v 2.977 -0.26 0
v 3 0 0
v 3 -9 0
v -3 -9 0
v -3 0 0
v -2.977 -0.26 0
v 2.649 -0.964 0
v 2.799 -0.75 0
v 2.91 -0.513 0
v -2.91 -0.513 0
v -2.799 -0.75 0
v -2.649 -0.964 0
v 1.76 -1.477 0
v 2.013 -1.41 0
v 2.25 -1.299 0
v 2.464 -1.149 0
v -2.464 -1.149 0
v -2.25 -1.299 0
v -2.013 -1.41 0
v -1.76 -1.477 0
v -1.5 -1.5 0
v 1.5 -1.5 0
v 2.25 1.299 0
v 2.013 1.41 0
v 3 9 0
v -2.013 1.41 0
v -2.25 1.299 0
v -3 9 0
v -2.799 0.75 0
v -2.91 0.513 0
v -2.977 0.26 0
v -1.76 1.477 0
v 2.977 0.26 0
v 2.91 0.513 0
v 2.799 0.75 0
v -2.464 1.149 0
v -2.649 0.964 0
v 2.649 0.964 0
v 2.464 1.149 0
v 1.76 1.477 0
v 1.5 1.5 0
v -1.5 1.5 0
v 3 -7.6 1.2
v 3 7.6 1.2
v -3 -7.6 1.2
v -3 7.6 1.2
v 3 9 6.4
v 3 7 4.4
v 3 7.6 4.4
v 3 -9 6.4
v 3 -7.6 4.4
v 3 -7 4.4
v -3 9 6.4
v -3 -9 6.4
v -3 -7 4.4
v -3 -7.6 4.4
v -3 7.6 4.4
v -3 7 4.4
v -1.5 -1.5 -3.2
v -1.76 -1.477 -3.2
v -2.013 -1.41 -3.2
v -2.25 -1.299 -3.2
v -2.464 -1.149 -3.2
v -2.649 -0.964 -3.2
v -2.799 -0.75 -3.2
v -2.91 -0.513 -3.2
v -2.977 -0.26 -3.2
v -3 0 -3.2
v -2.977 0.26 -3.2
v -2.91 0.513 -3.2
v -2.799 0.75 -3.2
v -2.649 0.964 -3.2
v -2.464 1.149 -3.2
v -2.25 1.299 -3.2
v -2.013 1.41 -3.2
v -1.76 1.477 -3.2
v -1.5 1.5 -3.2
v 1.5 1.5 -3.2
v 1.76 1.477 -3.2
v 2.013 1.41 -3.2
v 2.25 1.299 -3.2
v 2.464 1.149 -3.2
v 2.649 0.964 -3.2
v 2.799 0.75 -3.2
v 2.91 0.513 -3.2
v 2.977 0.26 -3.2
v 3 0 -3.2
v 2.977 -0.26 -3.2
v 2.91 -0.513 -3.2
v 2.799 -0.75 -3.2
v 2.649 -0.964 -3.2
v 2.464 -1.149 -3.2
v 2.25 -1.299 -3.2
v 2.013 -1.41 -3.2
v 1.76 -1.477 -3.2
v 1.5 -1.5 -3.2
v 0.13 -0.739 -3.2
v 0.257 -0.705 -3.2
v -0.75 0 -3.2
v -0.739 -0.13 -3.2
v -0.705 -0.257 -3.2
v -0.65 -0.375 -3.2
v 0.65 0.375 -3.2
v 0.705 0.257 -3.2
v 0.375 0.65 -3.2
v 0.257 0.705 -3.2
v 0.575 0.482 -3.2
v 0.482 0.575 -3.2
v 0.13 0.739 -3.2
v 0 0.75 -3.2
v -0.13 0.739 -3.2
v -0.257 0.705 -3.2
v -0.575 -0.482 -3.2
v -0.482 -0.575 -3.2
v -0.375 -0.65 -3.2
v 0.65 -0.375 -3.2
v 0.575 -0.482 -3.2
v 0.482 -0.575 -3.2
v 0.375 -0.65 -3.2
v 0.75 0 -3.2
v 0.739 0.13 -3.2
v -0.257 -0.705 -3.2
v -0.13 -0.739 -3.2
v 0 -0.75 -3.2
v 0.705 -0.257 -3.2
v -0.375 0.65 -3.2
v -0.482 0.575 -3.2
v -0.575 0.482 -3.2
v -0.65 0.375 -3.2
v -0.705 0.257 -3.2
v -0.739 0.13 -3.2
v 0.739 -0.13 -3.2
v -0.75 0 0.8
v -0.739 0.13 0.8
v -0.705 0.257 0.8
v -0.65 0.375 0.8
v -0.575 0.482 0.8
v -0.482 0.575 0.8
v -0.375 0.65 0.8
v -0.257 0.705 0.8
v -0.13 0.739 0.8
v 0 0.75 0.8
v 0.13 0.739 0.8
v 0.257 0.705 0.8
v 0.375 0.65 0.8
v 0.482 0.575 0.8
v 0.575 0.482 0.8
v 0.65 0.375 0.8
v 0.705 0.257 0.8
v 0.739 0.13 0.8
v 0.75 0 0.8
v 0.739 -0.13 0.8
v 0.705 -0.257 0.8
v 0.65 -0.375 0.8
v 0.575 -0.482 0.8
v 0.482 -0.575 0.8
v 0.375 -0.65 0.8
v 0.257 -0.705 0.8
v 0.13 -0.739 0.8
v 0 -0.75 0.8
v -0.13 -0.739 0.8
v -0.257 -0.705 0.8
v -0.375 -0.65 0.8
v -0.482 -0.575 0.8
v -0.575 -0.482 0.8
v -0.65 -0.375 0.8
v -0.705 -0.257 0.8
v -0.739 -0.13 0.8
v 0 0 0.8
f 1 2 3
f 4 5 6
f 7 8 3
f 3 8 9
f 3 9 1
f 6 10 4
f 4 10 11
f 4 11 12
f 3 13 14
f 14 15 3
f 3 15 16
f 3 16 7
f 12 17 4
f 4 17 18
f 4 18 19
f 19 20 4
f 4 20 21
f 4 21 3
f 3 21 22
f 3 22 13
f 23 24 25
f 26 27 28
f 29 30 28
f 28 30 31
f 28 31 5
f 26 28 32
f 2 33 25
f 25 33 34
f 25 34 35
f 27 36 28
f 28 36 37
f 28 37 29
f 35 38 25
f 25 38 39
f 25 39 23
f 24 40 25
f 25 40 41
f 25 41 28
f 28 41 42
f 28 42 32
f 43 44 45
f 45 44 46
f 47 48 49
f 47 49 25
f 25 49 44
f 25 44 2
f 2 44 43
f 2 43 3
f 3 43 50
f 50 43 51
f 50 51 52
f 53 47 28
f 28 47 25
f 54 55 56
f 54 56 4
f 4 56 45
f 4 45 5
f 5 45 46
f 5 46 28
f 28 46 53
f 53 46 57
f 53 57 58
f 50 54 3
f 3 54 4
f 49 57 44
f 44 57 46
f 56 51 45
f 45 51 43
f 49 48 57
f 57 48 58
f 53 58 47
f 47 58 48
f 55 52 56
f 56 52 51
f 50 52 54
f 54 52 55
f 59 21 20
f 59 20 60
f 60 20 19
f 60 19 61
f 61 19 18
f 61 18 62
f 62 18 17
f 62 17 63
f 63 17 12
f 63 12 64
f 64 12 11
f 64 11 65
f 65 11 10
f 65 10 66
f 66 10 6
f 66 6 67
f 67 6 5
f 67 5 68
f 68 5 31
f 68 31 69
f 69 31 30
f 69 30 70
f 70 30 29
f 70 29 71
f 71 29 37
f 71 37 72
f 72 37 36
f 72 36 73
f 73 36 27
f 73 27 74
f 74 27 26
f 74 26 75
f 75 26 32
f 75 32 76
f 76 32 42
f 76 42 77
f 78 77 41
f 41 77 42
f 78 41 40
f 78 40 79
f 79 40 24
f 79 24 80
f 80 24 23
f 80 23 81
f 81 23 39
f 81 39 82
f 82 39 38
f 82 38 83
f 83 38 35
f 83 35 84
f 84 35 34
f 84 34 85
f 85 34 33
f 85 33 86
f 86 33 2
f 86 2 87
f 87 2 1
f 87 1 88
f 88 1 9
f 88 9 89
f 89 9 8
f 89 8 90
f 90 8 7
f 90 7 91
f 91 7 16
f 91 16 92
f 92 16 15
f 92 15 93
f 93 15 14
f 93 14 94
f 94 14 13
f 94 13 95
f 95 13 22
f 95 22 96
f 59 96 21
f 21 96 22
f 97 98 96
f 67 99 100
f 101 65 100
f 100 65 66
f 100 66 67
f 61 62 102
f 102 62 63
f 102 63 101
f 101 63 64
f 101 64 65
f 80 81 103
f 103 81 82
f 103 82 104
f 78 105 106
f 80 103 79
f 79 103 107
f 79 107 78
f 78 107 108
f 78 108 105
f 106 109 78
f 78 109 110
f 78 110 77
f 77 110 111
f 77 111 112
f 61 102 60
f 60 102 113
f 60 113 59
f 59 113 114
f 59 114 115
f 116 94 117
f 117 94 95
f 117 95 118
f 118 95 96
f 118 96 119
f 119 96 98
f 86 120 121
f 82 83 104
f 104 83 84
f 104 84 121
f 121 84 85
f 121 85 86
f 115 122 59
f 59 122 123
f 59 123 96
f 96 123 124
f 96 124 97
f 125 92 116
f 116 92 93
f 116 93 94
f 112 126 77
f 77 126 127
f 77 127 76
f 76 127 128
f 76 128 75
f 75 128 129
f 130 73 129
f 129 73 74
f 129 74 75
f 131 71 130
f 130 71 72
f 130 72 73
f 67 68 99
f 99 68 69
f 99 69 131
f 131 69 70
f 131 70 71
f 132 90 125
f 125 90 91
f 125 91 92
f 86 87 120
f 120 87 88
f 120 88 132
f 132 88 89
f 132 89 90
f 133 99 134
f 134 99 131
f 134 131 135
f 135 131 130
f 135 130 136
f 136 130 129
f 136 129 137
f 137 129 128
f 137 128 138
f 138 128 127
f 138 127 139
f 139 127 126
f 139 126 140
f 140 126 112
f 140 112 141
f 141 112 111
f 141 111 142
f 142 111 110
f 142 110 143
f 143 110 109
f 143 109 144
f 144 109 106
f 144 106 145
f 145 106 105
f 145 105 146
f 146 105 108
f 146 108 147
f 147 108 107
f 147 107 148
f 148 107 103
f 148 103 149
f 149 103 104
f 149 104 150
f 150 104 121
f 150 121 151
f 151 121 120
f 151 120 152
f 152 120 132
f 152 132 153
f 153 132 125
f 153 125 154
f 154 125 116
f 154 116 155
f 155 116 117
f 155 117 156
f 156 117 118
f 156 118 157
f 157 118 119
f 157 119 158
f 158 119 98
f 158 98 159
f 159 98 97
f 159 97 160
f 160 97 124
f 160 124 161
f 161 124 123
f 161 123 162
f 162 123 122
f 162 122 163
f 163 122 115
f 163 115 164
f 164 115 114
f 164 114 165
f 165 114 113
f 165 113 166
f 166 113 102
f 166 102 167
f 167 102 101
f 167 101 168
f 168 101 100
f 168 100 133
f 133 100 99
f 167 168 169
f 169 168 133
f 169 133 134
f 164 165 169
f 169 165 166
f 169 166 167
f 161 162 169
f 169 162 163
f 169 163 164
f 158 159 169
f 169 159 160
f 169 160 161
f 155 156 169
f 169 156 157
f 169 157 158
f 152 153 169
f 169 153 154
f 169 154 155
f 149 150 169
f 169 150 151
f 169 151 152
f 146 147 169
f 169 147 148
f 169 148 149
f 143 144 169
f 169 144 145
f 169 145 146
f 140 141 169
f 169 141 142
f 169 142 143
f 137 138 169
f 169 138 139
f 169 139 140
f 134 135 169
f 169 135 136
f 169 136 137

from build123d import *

# Parameters (mm, degrees)
IZIM2_W                     = 6
IZIM2_H                     = 18
Y_KSEKLIK_EKSTR_ZYON1_DEPTH = 1.2
IZIM3_W                     = 6
IZIM3_H                     = 1.4
Y_KSEKLIK_EKSTR_ZYON4_DEPTH = 3.2
IZIM6_W                     = 6
IZIM6_H                     = 2
Y_KSEKLIK_EKSTR_ZYON5_DEPTH = 2
KES_EKSTR_ZYON2_DEPTH       = 6
IZIM8_W                     = 6
IZIM8_H                     = 2
Y_KSEKLIK_EKSTR_ZYON6_DEPTH = 2
KES_EKSTR_ZYON3_DEPTH       = 6
Y_KSEKLIK_EKSTR_ZYON8_DEPTH = 3.2
IZIM12_R                    = 0.75
KES_EKSTR_ZYON4_DEPTH       = 4


with BuildPart() as part:
    # Çizim2 → Yükseklik-Ekstrüzyon1 (new body)
    with BuildSketch(Plane.XY):
        Rectangle(IZIM2_W, IZIM2_H)
    extrude(amount=Y_KSEKLIK_EKSTR_ZYON1_DEPTH)

    # Çizim3 → Yükseklik-Ekstrüzyon4 (add)
    with BuildSketch(Plane.XY.offset(1.2)):
        with Locations((0, 8.3)):
            Rectangle(IZIM3_W, IZIM3_H)
        with Locations((0, -8.3)):
            Rectangle(IZIM3_W, IZIM3_H)
    extrude(amount=Y_KSEKLIK_EKSTR_ZYON4_DEPTH)

    # Çizim6 → Yükseklik-Ekstrüzyon5 (add)
    with BuildSketch(Plane.XY.offset(4.4)):
        with Locations((0, 8)):
            Rectangle(IZIM6_W, IZIM6_H)
    extrude(amount=Y_KSEKLIK_EKSTR_ZYON5_DEPTH)

    # Çizim7 → Kes-Ekstrüzyon2 (cut)
    with BuildSketch(Plane(origin=(3, 0, 0), x_dir=(0, 0, -1), z_dir=(1, 0, 0))):
        Polygon((-6.4, 9), (-4.4, 7), (-6.4, 7), align=None)
    extrude(amount=-KES_EKSTR_ZYON2_DEPTH, mode=Mode.SUBTRACT)

    # Çizim8 → Yükseklik-Ekstrüzyon6 (add)
    with BuildSketch(Plane.XY.offset(4.4)):
        with Locations((0, -8)):
            Rectangle(IZIM8_W, IZIM8_H)
    extrude(amount=Y_KSEKLIK_EKSTR_ZYON6_DEPTH)

    # Çizim9 → Kes-Ekstrüzyon3 (cut)
    with BuildSketch(Plane.ZY.offset(3)):
        Polygon((6.4, -9), (4.4, -7), (6.4, -7), align=None)
    extrude(amount=-KES_EKSTR_ZYON3_DEPTH, mode=Mode.SUBTRACT)

    # Çizim10 → Yükseklik-Ekstrüzyon8 (add)
    with BuildSketch(Plane(origin=(0, 0, 0), x_dir=(-1, 0, 0), z_dir=(0, 0, -1))):
        with BuildLine():
            Line((1.5, 1.5), (-1.5, 1.5))
            ThreePointArc((-1.5, 1.5), (-3, 0), (-1.5, -1.5))
            Line((-1.5, -1.5), (1.5, -1.5))
            ThreePointArc((1.5, -1.5), (3, 0), (1.5, 1.5))
        make_face()
    extrude(amount=Y_KSEKLIK_EKSTR_ZYON8_DEPTH)

    # Çizim12 → Kes-Ekstrüzyon4 (cut)
    with BuildSketch(Plane(origin=(0, 0, -3.2), x_dir=(-1, 0, 0), z_dir=(0, 0, -1))):
        Circle(IZIM12_R)
    extrude(amount=-KES_EKSTR_ZYON4_DEPTH, mode=Mode.SUBTRACT)


solid = part.part
